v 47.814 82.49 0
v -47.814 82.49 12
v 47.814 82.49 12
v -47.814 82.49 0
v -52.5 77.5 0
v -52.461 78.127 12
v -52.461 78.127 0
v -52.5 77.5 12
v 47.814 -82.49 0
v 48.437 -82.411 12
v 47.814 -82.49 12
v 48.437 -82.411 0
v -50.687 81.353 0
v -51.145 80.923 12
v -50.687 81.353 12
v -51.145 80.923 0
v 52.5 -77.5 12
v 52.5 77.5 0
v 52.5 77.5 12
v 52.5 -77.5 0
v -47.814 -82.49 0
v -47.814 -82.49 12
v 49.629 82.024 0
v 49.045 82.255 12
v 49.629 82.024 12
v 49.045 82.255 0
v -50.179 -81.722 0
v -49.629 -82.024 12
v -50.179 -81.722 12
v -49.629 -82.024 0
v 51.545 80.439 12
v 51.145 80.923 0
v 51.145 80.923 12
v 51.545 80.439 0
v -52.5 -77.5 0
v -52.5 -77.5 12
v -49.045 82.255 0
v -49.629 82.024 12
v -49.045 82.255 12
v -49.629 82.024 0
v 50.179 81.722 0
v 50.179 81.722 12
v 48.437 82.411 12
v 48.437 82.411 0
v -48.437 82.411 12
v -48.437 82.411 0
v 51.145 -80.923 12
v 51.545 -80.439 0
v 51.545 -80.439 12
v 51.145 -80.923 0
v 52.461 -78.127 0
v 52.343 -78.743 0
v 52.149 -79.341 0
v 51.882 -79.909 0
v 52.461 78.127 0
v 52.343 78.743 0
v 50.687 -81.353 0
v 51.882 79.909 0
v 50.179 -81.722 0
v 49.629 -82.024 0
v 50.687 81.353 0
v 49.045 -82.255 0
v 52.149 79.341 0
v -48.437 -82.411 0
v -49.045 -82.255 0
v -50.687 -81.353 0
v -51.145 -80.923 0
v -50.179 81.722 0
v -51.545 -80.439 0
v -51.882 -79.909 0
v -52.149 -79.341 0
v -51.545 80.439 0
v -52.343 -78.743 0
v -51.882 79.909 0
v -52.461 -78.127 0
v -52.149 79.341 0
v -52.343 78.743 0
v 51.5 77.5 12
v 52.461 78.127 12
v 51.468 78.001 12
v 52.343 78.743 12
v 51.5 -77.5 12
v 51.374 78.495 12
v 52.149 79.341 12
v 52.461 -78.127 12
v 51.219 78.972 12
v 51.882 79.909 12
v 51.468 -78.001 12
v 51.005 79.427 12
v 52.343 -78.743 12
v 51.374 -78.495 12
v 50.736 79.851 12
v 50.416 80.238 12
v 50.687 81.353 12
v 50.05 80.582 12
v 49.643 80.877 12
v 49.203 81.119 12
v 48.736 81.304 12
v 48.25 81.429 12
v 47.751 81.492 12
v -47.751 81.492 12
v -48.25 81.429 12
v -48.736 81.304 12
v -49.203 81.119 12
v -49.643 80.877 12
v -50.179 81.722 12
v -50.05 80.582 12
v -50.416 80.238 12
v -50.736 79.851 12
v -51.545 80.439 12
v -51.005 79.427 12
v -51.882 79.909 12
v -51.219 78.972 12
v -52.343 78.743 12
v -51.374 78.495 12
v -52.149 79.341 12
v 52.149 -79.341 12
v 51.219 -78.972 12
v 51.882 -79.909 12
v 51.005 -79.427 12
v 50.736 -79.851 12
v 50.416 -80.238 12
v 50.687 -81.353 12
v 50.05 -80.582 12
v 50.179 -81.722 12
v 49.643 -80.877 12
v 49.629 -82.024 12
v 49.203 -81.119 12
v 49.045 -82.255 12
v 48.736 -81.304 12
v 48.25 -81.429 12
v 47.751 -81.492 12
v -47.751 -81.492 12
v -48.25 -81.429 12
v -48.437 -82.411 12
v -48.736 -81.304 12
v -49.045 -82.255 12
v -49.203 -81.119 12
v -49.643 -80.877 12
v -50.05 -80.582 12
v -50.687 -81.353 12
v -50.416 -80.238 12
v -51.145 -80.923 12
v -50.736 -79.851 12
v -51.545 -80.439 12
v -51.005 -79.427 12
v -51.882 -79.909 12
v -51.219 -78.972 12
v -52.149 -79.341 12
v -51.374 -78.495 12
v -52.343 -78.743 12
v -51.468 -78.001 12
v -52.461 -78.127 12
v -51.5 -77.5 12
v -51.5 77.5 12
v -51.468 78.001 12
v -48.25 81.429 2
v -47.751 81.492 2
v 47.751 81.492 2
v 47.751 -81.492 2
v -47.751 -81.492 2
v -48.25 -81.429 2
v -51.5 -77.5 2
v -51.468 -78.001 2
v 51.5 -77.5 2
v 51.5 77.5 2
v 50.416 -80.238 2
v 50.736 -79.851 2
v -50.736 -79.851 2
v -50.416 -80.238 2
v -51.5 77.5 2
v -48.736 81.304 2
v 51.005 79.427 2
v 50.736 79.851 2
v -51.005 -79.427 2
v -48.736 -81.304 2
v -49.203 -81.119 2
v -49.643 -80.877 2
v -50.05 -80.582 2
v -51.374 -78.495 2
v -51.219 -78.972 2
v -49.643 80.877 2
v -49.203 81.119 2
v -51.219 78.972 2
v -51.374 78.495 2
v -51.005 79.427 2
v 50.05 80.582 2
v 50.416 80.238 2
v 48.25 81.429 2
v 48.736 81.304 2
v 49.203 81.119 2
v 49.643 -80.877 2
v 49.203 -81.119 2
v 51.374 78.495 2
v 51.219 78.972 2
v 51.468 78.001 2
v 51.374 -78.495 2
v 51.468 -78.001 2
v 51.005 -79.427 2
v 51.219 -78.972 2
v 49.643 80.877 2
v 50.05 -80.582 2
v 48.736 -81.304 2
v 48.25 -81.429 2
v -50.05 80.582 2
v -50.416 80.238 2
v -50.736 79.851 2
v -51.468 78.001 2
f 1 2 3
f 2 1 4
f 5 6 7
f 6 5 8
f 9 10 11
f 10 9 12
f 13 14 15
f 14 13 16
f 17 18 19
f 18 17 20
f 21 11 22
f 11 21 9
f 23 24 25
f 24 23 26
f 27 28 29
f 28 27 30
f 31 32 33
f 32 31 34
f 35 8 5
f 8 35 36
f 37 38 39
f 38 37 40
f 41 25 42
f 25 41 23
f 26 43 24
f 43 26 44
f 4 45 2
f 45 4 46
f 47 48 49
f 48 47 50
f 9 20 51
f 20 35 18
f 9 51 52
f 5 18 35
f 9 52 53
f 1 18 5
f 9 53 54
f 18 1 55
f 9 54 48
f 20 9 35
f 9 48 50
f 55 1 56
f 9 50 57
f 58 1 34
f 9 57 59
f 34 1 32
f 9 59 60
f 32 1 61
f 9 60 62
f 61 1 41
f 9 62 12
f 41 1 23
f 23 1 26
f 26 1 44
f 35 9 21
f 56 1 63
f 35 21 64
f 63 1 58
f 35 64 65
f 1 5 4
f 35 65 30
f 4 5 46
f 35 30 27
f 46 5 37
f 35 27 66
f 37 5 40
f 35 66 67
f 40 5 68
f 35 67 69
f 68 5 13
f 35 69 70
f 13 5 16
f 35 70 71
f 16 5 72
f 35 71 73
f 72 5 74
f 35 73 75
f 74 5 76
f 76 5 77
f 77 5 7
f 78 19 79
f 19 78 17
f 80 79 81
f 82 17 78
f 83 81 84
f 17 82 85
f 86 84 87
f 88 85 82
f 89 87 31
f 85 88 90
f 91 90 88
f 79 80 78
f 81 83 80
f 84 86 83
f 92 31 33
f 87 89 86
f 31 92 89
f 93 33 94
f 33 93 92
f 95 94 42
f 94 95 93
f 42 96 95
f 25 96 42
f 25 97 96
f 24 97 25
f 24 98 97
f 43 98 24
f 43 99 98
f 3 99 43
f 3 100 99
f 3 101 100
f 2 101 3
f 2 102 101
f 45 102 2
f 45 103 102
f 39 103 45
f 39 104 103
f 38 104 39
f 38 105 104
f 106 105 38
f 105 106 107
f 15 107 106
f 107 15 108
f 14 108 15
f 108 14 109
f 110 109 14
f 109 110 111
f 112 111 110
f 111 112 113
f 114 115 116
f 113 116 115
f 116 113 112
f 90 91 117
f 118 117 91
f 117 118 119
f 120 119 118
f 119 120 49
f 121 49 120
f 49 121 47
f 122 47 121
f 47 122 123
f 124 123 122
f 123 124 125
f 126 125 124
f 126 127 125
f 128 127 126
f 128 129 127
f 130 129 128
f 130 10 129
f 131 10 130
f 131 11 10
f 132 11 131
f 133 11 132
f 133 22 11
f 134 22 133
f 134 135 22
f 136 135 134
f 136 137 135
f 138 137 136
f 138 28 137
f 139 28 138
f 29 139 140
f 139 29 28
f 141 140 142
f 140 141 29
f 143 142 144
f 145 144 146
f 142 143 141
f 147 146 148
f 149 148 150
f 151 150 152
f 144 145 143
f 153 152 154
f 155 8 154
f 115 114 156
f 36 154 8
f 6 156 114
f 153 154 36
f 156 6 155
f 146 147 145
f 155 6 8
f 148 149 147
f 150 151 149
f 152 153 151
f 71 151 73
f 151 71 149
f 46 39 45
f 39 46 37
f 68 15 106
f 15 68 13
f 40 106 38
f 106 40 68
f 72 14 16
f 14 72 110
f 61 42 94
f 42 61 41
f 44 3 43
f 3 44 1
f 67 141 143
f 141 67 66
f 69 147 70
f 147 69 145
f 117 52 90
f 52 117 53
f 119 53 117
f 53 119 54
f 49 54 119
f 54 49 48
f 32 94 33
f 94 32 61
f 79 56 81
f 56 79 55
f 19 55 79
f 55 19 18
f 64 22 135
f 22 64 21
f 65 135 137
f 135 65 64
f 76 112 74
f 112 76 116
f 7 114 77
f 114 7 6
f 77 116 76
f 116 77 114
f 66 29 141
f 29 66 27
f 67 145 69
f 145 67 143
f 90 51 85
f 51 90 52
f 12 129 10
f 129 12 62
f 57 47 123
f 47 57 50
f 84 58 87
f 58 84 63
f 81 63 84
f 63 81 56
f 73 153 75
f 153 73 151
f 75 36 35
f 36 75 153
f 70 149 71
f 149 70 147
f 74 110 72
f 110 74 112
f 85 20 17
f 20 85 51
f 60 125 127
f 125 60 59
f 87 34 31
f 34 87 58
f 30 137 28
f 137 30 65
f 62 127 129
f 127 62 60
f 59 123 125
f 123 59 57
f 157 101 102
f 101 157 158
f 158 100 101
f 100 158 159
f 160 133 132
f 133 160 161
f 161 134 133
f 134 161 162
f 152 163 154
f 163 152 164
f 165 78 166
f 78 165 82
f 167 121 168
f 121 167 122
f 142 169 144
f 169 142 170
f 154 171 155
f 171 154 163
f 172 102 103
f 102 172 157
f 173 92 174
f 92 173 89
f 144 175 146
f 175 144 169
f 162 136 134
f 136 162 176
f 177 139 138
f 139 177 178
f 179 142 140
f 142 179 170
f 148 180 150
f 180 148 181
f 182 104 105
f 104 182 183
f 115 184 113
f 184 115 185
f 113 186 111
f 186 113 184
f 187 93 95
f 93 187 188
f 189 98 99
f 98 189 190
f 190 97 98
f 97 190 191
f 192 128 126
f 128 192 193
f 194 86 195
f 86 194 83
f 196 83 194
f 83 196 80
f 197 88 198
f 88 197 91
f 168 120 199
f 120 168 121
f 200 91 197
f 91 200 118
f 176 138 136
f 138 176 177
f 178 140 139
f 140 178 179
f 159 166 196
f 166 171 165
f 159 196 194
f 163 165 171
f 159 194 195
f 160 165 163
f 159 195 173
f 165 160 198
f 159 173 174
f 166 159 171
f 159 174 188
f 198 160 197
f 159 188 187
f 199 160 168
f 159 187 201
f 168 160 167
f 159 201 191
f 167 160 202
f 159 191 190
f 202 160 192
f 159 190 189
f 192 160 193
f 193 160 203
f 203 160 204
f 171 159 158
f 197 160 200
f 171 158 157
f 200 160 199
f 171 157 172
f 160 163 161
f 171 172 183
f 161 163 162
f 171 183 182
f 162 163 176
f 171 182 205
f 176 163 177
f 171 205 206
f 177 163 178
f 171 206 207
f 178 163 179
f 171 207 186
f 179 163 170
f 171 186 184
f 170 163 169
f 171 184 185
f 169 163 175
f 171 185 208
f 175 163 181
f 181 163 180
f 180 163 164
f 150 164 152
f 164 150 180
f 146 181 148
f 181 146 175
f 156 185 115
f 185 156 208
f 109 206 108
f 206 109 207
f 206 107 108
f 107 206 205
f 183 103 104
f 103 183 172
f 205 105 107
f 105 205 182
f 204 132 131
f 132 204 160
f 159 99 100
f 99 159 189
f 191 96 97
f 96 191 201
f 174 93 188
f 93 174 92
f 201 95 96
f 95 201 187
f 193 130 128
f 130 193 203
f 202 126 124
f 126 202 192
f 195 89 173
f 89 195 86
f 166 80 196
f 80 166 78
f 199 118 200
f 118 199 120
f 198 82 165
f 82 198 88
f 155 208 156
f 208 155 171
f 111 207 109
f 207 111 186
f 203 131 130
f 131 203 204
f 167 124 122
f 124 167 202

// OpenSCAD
$fn = 50;


difference() {
	union() {
		hull() {
			translate(v = [-47.5000000000, 77.5000000000, 0]) {
				cylinder(h = 12, r = 5);
			}
			translate(v = [47.5000000000, 77.5000000000, 0]) {
				cylinder(h = 12, r = 5);
			}
			translate(v = [-47.5000000000, -77.5000000000, 0]) {
				cylinder(h = 12, r = 5);
			}
			translate(v = [47.5000000000, -77.5000000000, 0]) {
				cylinder(h = 12, r = 5);
			}
		}
	}
	union() {
		translate(v = [0, 0, 2]) {
			hull() {
				translate(v = [-47.5000000000, 77.5000000000, 0]) {
					cylinder(h = 10, r = 4);
				}
				translate(v = [47.5000000000, 77.5000000000, 0]) {
					cylinder(h = 10, r = 4);
				}
				translate(v = [-47.5000000000, -77.5000000000, 0]) {
					cylinder(h = 10, r = 4);
				}
				translate(v = [47.5000000000, -77.5000000000, 0]) {
					cylinder(h = 10, r = 4);
				}
			}
		}
	}
}
